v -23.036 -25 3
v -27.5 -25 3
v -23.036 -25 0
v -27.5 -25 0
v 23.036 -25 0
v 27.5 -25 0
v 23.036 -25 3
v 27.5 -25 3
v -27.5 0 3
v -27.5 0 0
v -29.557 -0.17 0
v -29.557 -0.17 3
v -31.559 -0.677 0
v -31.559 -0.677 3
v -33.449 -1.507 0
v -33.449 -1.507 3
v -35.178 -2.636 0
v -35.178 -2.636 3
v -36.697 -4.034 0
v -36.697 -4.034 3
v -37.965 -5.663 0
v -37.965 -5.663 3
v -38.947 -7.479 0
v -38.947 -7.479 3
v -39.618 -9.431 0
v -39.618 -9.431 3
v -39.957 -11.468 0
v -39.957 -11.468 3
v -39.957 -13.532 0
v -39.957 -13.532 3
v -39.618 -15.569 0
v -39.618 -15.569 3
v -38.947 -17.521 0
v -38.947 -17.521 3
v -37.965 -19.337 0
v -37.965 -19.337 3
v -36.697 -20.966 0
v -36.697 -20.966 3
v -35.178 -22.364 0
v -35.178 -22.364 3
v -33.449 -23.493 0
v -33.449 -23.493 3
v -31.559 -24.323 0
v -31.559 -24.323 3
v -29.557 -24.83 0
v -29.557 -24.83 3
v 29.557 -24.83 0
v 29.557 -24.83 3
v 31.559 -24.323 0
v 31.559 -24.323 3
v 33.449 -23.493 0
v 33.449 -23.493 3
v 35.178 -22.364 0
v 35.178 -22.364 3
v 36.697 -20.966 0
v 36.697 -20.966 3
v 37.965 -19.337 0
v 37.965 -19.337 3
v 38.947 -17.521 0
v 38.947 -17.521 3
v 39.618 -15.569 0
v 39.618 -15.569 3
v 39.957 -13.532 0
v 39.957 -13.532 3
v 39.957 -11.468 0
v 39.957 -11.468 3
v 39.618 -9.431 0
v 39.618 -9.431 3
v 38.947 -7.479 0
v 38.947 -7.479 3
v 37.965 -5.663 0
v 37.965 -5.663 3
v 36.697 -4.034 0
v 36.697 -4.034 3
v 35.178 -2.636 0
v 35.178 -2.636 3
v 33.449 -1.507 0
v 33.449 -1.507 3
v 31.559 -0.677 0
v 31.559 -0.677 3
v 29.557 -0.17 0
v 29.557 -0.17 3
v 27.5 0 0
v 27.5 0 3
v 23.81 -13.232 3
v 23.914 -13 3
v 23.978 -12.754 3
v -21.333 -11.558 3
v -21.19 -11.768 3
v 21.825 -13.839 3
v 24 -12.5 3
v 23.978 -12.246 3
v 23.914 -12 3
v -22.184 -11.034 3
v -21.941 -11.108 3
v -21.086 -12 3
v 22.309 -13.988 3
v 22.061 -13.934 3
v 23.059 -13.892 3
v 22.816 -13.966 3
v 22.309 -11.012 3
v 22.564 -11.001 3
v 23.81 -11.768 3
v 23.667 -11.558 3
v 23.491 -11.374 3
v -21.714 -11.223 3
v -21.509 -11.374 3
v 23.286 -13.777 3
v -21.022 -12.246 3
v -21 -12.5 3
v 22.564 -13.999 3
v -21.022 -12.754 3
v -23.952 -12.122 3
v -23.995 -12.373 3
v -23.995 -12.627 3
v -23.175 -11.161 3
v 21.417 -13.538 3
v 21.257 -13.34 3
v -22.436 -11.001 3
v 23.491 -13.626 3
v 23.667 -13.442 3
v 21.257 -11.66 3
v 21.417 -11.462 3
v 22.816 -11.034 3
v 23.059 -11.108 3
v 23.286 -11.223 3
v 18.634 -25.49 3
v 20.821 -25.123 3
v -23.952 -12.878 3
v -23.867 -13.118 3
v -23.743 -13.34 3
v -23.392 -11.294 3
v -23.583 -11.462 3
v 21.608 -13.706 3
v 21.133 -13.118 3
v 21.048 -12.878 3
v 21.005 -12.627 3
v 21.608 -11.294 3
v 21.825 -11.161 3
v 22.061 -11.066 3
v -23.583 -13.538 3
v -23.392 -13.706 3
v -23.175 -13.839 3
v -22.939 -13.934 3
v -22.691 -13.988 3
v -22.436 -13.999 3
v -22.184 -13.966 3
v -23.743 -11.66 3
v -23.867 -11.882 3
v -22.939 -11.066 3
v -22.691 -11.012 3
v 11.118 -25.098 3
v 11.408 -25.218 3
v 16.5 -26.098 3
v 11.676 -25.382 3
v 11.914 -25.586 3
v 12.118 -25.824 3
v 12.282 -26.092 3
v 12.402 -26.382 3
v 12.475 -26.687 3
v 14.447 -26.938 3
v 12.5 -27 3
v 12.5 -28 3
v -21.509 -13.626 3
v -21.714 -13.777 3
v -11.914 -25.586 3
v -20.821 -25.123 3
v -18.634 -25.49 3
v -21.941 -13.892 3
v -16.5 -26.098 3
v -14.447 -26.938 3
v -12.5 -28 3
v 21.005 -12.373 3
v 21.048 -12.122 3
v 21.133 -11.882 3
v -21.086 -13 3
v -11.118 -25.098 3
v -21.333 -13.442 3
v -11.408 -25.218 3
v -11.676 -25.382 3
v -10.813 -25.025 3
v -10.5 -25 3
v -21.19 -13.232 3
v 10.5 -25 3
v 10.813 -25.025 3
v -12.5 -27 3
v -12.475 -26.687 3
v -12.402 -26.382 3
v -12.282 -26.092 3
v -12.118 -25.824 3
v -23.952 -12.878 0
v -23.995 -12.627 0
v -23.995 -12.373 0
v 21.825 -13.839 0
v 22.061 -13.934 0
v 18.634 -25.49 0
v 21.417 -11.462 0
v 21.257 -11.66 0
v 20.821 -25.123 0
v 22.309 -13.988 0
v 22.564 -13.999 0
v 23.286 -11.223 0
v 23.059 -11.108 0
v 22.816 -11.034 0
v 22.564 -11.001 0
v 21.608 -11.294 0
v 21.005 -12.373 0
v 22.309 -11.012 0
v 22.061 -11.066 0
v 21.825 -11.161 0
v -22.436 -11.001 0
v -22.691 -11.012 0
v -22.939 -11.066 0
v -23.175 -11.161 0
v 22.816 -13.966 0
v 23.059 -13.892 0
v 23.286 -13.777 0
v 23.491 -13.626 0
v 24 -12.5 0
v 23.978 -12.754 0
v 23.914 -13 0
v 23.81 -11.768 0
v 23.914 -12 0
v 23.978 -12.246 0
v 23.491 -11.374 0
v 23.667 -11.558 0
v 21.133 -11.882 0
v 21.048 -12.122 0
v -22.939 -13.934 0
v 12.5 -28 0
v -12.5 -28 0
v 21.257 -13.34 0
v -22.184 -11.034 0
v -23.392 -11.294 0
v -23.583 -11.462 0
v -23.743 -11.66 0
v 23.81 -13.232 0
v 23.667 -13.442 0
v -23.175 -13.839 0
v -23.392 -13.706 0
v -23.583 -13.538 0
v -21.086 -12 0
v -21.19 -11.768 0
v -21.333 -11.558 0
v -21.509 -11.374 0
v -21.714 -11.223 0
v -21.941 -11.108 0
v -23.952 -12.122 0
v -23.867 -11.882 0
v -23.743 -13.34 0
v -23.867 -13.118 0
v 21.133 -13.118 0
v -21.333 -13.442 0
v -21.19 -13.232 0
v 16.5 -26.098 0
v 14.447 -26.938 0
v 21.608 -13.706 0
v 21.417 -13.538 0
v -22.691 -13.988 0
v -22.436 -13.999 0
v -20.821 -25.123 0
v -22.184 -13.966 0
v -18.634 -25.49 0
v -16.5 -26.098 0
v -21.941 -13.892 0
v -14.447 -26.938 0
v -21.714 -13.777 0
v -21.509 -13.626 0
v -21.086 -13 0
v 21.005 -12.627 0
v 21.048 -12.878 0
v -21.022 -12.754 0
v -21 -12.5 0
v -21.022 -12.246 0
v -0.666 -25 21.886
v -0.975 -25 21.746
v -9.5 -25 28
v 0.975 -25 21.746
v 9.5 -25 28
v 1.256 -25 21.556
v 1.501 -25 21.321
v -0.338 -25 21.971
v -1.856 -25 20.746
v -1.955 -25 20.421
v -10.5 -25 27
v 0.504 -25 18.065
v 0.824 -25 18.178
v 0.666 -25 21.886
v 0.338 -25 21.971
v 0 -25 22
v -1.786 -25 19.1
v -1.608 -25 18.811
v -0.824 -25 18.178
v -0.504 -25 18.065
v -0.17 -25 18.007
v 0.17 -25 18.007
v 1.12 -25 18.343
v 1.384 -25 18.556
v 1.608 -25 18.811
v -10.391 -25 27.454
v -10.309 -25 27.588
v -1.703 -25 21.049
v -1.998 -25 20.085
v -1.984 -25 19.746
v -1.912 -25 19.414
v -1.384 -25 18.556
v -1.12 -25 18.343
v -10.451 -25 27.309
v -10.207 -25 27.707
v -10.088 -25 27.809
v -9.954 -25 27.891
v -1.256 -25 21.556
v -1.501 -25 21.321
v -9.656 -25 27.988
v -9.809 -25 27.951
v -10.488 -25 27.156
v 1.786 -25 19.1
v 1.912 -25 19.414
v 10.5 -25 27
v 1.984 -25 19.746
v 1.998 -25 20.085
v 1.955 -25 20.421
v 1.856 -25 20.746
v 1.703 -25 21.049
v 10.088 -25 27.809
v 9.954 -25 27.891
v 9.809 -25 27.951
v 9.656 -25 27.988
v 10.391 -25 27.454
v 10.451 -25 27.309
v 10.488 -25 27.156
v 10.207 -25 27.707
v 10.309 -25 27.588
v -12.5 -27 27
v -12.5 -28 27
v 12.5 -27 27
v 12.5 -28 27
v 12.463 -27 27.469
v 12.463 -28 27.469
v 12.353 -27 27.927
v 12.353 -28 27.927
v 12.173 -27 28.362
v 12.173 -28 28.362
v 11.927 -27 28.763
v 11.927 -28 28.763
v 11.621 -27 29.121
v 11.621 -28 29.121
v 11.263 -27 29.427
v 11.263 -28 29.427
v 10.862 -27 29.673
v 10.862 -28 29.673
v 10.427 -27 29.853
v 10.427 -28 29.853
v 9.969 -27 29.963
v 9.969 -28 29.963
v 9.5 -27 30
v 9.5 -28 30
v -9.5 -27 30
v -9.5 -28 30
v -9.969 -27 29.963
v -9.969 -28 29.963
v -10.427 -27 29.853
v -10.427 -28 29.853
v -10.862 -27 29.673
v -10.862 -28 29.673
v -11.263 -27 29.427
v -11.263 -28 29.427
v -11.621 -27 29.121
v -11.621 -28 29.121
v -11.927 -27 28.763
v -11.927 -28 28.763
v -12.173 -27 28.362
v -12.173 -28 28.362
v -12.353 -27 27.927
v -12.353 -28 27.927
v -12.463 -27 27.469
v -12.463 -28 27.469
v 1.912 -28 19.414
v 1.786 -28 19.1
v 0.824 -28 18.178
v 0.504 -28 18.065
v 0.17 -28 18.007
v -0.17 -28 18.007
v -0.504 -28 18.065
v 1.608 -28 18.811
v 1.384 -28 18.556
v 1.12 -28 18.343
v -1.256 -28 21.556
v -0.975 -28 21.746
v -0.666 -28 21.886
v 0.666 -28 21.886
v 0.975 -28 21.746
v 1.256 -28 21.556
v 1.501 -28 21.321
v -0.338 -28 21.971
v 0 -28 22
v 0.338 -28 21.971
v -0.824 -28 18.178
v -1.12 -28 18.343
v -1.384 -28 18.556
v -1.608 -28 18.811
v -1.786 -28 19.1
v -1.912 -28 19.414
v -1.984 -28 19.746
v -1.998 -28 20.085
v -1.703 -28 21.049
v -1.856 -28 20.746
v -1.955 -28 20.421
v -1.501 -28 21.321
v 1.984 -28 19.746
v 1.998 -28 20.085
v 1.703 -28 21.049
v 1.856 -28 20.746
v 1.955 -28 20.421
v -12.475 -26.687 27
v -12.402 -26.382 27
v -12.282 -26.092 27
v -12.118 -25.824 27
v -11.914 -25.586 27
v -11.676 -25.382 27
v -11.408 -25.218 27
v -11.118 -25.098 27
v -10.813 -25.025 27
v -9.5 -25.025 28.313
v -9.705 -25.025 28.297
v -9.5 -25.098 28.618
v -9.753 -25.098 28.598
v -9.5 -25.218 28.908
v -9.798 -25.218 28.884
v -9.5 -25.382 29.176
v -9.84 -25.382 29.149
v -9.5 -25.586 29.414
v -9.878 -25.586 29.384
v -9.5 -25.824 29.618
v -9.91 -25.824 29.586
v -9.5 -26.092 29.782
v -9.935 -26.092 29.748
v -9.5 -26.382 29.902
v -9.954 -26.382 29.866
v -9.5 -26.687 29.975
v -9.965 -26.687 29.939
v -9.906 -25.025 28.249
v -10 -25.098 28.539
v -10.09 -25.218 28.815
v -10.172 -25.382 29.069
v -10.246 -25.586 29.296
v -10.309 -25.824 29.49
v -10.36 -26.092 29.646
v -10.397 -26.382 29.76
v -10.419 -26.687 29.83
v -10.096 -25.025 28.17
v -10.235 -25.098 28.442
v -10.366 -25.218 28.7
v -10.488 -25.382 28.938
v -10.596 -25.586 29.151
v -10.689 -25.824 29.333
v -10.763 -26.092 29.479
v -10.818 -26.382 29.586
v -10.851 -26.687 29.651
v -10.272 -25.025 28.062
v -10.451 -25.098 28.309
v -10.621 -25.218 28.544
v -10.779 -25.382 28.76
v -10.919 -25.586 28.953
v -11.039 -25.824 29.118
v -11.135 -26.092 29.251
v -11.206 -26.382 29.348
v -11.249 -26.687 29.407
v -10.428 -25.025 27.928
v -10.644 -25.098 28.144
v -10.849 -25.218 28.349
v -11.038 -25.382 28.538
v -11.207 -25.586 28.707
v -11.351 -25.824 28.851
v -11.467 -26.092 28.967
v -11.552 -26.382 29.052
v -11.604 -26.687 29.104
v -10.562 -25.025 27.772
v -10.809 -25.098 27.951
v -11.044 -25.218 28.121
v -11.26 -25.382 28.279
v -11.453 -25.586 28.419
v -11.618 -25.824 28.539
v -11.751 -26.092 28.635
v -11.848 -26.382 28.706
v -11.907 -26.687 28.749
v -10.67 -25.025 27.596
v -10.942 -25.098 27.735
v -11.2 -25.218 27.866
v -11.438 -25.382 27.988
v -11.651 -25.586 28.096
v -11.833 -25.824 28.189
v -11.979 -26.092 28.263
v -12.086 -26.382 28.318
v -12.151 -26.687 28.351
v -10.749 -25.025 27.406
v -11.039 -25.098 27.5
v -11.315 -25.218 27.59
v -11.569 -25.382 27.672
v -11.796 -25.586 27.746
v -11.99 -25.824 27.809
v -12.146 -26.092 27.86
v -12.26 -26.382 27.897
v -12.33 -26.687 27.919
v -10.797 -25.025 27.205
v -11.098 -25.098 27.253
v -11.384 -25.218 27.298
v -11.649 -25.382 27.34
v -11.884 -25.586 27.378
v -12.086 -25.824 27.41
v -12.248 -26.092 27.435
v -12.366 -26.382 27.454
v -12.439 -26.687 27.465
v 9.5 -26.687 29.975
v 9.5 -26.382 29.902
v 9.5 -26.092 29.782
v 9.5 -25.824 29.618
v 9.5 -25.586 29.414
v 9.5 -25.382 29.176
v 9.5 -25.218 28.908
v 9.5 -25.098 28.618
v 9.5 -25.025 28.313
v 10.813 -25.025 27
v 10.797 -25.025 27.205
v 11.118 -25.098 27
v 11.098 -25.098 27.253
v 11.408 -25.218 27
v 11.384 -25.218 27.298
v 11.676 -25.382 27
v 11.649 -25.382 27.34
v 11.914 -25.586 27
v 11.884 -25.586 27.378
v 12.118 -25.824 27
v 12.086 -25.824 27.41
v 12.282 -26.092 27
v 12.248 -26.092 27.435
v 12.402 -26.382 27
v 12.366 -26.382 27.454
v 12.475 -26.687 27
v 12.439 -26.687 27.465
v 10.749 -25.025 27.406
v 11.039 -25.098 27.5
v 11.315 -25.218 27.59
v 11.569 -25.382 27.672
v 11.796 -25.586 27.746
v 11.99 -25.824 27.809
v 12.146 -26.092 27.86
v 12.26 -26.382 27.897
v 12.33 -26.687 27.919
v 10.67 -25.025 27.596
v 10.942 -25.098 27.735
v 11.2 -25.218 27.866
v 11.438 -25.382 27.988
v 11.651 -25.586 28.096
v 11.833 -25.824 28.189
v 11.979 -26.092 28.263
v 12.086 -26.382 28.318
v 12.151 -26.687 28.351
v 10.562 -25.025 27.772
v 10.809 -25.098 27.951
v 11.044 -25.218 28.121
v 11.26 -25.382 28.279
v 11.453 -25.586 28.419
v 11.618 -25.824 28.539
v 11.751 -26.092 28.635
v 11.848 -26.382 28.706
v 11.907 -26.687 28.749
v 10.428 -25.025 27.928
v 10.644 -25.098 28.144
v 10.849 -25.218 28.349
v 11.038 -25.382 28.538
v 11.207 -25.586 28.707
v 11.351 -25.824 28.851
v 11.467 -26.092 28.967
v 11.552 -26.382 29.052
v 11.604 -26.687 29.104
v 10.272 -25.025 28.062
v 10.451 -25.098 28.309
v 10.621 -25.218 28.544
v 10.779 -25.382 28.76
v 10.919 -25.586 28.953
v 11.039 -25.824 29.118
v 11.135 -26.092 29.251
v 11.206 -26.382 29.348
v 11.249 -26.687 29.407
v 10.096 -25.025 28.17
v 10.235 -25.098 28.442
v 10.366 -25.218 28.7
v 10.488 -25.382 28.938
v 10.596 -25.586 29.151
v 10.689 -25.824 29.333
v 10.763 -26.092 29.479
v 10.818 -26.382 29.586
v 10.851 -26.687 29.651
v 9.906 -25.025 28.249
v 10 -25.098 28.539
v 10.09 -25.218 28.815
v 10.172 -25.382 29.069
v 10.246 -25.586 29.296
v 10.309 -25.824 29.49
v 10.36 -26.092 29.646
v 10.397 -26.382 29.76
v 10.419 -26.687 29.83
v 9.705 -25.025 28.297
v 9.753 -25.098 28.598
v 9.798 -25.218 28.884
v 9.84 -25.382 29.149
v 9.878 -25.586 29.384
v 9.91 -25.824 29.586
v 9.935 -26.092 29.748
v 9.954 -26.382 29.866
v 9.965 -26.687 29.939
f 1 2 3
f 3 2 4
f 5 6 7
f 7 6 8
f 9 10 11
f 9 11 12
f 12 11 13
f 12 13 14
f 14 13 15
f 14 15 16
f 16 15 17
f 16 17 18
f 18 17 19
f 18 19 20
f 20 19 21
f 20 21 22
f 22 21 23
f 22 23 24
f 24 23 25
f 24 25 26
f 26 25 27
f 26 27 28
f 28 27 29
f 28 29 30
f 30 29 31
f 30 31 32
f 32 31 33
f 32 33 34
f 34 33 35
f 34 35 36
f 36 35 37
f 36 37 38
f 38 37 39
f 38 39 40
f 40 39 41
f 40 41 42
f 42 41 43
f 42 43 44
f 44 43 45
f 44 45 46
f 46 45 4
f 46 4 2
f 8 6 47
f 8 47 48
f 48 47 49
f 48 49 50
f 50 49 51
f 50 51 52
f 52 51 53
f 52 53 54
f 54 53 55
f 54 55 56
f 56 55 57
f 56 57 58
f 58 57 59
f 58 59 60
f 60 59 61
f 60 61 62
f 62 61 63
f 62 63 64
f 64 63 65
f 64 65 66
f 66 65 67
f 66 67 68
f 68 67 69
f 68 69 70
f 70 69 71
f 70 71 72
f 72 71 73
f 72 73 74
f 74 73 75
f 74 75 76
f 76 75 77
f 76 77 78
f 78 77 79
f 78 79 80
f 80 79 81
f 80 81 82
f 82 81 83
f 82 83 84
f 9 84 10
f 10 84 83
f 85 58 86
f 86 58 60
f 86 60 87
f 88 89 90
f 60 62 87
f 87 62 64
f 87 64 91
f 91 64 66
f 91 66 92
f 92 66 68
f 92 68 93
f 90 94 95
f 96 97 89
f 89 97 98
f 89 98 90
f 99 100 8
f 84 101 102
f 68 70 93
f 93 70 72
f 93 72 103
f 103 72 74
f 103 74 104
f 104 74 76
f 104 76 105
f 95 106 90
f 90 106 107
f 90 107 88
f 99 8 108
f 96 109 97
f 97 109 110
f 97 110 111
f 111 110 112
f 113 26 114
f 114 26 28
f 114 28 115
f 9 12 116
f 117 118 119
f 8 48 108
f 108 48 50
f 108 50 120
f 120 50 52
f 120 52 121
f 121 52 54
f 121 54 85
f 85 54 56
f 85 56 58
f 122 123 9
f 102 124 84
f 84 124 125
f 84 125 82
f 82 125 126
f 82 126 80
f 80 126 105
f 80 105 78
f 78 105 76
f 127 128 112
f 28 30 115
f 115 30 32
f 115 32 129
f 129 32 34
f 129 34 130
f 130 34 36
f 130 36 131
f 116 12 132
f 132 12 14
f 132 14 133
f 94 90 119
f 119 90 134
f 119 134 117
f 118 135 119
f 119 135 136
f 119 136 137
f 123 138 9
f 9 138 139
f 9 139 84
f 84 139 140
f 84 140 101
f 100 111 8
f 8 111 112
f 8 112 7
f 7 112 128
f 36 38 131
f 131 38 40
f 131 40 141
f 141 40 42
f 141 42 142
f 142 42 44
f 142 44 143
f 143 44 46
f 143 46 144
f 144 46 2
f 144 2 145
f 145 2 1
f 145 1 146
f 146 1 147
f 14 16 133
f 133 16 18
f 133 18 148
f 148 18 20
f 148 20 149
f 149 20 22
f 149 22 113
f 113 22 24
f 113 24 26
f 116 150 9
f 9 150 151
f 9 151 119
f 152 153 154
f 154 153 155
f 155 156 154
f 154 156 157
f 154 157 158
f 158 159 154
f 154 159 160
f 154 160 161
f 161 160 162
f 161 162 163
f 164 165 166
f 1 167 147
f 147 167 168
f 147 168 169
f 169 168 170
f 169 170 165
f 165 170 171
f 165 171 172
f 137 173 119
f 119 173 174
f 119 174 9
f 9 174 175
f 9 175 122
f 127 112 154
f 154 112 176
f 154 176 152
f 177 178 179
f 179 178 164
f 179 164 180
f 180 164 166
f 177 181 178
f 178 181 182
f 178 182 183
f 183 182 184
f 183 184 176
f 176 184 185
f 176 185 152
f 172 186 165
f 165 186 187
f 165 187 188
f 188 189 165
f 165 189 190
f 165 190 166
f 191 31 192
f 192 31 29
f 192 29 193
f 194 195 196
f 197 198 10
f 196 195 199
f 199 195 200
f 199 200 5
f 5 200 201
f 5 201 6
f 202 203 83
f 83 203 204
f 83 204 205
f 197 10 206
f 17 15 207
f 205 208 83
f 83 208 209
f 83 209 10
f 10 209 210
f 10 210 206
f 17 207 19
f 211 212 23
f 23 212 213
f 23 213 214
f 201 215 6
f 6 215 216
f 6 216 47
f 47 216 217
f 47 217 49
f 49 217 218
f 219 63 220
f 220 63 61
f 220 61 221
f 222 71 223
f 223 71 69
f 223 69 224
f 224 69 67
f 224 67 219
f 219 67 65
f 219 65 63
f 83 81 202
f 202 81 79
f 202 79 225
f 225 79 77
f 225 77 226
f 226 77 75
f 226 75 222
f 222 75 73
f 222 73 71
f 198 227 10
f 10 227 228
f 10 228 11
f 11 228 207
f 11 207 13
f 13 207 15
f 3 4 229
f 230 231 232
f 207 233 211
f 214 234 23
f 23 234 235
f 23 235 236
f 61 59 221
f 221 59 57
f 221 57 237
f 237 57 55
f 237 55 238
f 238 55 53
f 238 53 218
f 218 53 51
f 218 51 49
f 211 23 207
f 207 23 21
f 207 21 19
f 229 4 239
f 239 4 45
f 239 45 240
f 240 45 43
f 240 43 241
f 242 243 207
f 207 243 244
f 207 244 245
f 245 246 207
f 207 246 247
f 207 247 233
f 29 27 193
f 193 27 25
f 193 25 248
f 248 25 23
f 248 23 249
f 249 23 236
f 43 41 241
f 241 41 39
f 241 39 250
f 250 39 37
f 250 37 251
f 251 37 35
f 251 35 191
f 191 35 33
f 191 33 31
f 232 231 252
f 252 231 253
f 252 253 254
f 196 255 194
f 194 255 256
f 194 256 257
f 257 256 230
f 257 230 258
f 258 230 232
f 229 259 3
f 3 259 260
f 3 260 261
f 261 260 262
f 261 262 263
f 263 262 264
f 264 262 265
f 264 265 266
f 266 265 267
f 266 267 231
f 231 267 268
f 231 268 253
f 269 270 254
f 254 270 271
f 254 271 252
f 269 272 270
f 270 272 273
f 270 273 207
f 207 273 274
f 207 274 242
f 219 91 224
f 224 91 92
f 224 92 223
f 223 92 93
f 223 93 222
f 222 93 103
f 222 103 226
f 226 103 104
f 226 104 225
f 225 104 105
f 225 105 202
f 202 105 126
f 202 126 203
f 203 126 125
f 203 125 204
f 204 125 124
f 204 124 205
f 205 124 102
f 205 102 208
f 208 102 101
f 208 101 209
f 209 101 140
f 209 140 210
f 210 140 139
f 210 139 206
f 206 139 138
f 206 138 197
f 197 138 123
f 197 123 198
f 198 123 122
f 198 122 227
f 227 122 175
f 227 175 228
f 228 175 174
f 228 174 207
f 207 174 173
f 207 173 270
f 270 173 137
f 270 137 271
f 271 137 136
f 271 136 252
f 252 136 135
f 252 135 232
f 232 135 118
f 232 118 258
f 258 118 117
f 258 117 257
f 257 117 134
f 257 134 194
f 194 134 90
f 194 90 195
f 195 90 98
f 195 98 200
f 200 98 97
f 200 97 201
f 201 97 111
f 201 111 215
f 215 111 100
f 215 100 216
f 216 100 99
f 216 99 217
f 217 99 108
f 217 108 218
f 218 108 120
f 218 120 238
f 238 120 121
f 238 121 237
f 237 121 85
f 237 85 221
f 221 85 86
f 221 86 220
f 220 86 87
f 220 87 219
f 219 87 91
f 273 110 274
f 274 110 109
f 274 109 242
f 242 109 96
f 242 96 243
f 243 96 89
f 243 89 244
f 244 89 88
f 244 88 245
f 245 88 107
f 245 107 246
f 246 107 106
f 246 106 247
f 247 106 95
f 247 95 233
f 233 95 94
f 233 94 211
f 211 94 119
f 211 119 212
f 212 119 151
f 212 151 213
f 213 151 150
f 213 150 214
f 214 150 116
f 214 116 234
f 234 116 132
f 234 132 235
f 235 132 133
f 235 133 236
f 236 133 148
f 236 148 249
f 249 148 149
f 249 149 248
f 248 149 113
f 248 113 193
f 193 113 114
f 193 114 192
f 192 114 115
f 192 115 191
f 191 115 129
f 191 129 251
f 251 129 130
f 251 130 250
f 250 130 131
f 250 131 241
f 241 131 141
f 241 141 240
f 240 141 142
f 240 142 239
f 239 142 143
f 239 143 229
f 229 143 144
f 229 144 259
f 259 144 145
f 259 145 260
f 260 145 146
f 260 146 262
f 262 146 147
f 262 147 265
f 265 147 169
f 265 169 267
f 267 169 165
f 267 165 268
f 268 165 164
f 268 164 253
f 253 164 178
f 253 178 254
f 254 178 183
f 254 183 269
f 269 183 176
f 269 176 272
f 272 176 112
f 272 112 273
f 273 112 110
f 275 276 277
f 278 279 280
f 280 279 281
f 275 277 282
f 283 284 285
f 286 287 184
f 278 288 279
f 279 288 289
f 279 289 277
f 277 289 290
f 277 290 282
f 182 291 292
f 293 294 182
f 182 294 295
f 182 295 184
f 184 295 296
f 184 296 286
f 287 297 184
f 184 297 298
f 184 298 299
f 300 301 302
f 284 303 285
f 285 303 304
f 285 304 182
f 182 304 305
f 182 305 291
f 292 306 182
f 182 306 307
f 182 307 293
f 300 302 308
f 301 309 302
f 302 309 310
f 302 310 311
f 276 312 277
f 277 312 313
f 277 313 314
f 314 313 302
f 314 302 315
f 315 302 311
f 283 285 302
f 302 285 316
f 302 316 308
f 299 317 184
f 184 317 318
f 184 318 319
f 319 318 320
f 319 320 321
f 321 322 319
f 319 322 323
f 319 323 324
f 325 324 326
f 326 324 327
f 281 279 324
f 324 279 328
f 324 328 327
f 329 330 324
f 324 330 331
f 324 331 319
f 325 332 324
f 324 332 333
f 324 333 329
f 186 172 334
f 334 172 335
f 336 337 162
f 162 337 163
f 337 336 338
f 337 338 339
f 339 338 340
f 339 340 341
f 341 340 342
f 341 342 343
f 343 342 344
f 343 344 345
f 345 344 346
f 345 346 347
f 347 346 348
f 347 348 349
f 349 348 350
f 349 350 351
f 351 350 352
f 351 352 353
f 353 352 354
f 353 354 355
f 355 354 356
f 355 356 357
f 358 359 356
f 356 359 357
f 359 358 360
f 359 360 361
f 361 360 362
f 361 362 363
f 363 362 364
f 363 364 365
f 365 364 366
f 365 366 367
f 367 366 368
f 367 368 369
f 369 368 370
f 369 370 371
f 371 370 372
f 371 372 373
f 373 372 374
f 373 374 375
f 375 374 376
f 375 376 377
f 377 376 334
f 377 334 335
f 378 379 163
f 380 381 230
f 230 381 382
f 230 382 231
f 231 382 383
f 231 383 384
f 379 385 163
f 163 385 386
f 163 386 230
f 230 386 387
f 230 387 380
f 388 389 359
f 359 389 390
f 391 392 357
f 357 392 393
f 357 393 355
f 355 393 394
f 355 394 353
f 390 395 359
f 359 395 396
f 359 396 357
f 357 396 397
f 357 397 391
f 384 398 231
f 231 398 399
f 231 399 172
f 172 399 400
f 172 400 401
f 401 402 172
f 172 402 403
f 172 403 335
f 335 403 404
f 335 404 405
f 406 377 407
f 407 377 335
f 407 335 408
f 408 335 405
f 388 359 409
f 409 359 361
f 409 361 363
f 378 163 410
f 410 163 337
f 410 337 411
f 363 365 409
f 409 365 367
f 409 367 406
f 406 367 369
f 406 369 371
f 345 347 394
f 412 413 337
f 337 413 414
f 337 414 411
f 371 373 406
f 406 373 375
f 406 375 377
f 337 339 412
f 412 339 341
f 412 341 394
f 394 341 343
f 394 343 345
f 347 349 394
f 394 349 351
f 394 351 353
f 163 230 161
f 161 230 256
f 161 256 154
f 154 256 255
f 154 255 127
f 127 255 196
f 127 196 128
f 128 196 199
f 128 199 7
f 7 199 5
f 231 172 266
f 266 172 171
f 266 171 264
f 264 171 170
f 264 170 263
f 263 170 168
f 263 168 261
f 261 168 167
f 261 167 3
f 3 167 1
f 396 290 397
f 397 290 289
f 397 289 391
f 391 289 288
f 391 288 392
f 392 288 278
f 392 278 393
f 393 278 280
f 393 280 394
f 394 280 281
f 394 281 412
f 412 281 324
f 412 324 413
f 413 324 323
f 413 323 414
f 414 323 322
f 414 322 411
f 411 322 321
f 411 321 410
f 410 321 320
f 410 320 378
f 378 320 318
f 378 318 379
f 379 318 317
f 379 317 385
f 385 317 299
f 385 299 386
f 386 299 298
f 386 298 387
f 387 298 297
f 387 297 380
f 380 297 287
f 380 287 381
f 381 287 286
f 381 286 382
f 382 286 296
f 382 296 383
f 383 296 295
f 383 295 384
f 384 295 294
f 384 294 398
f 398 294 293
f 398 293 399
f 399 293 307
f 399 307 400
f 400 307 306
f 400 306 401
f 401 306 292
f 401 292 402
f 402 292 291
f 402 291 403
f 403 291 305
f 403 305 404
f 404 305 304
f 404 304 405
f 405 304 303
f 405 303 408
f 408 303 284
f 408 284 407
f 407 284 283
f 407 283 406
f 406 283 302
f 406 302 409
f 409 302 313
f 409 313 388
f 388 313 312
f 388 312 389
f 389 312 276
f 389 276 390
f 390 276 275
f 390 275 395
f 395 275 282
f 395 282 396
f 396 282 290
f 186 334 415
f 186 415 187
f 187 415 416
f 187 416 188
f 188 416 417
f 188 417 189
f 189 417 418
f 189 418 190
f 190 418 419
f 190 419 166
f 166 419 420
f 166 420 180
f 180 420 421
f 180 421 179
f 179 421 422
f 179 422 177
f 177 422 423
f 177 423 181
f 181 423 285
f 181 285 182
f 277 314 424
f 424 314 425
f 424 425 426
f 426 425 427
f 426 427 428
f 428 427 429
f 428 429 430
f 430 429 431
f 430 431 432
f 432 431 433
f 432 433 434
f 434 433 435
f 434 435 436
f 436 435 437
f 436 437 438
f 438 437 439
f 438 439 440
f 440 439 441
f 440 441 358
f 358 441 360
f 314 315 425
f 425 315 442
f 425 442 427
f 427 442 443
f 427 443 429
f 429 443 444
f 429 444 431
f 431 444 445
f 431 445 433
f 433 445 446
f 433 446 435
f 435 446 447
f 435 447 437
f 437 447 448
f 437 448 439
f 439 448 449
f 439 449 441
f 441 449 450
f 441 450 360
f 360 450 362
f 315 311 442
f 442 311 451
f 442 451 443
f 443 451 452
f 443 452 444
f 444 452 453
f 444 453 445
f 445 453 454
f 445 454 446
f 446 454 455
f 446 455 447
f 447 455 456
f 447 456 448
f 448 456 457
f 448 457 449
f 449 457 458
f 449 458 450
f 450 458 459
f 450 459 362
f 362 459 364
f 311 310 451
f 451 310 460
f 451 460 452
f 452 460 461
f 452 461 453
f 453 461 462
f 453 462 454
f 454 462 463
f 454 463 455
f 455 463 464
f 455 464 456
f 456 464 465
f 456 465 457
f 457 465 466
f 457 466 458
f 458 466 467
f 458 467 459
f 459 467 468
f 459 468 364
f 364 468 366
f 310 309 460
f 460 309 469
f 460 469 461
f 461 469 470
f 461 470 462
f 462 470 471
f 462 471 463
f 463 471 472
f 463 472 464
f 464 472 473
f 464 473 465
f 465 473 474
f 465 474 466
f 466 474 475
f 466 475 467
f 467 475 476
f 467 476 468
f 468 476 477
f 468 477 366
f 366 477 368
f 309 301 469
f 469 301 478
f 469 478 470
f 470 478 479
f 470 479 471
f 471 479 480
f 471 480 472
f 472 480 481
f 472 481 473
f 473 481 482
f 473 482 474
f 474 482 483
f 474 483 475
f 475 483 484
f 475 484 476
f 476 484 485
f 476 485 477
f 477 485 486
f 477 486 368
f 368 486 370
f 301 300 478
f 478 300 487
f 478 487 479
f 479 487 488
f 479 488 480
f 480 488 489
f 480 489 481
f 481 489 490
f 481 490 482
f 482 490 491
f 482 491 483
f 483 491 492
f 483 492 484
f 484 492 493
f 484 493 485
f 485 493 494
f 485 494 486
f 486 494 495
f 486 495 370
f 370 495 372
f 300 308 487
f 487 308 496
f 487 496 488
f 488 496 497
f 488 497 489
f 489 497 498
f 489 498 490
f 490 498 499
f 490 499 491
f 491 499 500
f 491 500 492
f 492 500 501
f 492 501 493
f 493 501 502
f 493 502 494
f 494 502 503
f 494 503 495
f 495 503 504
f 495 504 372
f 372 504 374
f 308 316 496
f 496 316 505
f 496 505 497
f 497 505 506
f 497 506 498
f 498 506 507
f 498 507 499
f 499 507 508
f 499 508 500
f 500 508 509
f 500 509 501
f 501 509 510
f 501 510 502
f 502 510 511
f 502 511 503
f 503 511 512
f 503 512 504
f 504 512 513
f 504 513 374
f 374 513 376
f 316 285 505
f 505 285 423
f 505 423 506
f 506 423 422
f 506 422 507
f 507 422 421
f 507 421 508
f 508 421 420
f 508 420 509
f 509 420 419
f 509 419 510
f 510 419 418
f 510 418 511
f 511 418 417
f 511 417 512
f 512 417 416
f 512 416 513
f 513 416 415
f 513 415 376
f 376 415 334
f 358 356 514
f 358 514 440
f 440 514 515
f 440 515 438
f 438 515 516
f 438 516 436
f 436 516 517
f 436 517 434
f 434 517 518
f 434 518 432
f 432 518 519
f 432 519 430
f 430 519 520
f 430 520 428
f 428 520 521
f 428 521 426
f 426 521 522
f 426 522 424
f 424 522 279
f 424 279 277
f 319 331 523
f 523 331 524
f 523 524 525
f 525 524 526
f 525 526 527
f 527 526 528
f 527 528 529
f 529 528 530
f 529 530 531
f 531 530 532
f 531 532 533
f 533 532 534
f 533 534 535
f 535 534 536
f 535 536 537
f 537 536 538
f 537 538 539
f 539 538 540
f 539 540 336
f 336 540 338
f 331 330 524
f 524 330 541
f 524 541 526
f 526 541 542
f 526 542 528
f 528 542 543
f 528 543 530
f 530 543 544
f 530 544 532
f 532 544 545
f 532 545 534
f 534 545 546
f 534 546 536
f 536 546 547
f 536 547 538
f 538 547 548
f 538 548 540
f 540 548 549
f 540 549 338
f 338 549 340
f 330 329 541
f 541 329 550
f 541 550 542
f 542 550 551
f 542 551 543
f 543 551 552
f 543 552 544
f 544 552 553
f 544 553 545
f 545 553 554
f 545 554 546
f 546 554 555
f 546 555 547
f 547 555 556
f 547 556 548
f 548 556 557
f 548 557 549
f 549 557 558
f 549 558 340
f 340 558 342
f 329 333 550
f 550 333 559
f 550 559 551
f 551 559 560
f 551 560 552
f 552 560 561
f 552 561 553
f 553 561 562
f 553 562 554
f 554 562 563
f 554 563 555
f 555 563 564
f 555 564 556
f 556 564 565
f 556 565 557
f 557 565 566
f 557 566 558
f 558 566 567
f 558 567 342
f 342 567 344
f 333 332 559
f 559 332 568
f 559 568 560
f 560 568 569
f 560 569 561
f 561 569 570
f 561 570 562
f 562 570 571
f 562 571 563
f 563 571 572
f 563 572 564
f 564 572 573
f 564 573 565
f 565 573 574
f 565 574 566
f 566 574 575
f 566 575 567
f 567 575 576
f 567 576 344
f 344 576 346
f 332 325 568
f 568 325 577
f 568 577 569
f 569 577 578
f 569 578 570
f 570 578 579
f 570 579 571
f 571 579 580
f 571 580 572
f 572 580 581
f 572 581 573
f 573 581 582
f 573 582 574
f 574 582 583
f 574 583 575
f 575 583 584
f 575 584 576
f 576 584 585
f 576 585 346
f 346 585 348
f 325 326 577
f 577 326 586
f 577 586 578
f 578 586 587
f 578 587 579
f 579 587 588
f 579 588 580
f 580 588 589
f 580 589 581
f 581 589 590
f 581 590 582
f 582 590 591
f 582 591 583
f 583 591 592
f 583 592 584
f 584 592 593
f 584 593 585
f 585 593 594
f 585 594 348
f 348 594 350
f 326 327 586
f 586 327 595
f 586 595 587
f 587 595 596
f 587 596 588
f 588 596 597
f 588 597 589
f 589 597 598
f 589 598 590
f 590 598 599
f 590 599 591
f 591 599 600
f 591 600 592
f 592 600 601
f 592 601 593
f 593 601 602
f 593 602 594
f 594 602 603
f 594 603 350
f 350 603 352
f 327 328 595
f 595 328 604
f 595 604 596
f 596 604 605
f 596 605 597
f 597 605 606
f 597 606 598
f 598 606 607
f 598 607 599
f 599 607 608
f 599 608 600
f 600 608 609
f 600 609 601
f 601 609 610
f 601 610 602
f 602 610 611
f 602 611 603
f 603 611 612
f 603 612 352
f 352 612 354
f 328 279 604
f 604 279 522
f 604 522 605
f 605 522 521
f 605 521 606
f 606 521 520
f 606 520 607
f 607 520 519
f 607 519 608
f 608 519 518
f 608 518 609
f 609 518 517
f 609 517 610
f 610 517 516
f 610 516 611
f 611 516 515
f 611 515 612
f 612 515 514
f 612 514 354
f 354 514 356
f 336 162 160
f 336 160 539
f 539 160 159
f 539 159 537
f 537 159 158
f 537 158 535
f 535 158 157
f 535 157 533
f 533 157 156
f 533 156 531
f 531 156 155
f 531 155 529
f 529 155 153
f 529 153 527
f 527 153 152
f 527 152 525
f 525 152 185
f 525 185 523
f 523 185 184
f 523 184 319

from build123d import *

# Parameters (mm, degrees)
BOSS_EXTRU_1_DEPTH      = 3
ESQUISSE2_R             = 1.5
ENL_V_MAT_EXTRU_1_DEPTH = 48.265209192
BOSS_EXTRU_2_DEPTH      = 3
CONG_1_R                = 20
ESQUISSE4_R             = 2
ENL_V_MAT_EXTRU_2_DEPTH = 56.901699437
CONG_3_R                = 2


with BuildPart() as part:
    # Esquisse1 → Boss.-Extru.1 (new body)
    with BuildSketch(Plane.XY):
        with BuildLine():
            Line((-27.5, 0), (27.5, 0))
            ThreePointArc((27.5, 0), (40, -12.5), (27.5, -25))
            Line((27.5, -25), (-27.5, -25))
            ThreePointArc((-27.5, -25), (-40, -12.5), (-27.5, 0))
        make_face()
    extrude(amount=BOSS_EXTRU_1_DEPTH)

    # Esquisse2 → Enlèv. mat.-Extru.1 (cut, through all)
    with BuildSketch(Plane.XY.offset(3)):
        with Locations((-22.5, -12.5)):
            Circle(ESQUISSE2_R)
        with Locations((22.5, -12.5)):
            Circle(ESQUISSE2_R)
    extrude(amount=-ENL_V_MAT_EXTRU_1_DEPTH, mode=Mode.SUBTRACT)

    # Esquisse3 → Boss.-Extru.2 (add)
    with BuildSketch(Plane.XZ.offset(25)):
        with BuildLine():
            Line((-12.5, 0), (12.5, 0))
            Line((12.5, 0), (12.5, 27))
            ThreePointArc((12.5, 27), (11.621320344, 29.121320344), (9.5, 30))
            Line((9.5, 30), (-9.5, 30))
            ThreePointArc((-9.5, 30), (-11.621320344, 29.121320344), (-12.5, 27))
            Line((-12.5, 27), (-12.5, 0))
        make_face()
    extrude(amount=BOSS_EXTRU_2_DEPTH)

    # Congé1
    # the kernel refuses this fillet: 20 mm, written as the material it adds along each edge
    with BuildSketch(Plane(origin=(12.5, -25, 0), x_dir=(1, 0, 0), z_dir=(0, 0, 1)), Plane(origin=(-12.5, -25, 3), x_dir=(-1, 0, 0), z_dir=(0, 0, -1))) as cong_1_piece_1:
        with BuildLine():
            CenterArc((10.535653753, -20), CONG_1_R, 90, 31.788330617)
            Line((0, -3), (0, 0))
            Line((0, 0), (10.535653753, 0))
        make_face()
    extrude(amount=3)

    # Esquisse4 → Enlèv. mat.-Extru.2 (cut, through all)
    with BuildSketch(Plane(origin=(0, -25, 0), x_dir=(1, 0, 0), z_dir=(0, 1, 0))):
        with Locations(Location((0, -20, 0), (0, 0, 270))):
            Circle(ESQUISSE4_R)
    extrude(amount=-ENL_V_MAT_EXTRU_2_DEPTH, mode=Mode.SUBTRACT)

    # Congé3
    cong_3_edges = [part.edges().sort_by_distance(p)[0] for p in [
        (-12.5, -25, 15),
        (12.5, -25, 15),
        (11.621320344, -25, 29.121320344),
        (0, -25, 30),
        (-11.621320344, -25, 29.121320344),
    ]]
    fillet(cong_3_edges, radius=CONG_3_R)


solid = part.part
